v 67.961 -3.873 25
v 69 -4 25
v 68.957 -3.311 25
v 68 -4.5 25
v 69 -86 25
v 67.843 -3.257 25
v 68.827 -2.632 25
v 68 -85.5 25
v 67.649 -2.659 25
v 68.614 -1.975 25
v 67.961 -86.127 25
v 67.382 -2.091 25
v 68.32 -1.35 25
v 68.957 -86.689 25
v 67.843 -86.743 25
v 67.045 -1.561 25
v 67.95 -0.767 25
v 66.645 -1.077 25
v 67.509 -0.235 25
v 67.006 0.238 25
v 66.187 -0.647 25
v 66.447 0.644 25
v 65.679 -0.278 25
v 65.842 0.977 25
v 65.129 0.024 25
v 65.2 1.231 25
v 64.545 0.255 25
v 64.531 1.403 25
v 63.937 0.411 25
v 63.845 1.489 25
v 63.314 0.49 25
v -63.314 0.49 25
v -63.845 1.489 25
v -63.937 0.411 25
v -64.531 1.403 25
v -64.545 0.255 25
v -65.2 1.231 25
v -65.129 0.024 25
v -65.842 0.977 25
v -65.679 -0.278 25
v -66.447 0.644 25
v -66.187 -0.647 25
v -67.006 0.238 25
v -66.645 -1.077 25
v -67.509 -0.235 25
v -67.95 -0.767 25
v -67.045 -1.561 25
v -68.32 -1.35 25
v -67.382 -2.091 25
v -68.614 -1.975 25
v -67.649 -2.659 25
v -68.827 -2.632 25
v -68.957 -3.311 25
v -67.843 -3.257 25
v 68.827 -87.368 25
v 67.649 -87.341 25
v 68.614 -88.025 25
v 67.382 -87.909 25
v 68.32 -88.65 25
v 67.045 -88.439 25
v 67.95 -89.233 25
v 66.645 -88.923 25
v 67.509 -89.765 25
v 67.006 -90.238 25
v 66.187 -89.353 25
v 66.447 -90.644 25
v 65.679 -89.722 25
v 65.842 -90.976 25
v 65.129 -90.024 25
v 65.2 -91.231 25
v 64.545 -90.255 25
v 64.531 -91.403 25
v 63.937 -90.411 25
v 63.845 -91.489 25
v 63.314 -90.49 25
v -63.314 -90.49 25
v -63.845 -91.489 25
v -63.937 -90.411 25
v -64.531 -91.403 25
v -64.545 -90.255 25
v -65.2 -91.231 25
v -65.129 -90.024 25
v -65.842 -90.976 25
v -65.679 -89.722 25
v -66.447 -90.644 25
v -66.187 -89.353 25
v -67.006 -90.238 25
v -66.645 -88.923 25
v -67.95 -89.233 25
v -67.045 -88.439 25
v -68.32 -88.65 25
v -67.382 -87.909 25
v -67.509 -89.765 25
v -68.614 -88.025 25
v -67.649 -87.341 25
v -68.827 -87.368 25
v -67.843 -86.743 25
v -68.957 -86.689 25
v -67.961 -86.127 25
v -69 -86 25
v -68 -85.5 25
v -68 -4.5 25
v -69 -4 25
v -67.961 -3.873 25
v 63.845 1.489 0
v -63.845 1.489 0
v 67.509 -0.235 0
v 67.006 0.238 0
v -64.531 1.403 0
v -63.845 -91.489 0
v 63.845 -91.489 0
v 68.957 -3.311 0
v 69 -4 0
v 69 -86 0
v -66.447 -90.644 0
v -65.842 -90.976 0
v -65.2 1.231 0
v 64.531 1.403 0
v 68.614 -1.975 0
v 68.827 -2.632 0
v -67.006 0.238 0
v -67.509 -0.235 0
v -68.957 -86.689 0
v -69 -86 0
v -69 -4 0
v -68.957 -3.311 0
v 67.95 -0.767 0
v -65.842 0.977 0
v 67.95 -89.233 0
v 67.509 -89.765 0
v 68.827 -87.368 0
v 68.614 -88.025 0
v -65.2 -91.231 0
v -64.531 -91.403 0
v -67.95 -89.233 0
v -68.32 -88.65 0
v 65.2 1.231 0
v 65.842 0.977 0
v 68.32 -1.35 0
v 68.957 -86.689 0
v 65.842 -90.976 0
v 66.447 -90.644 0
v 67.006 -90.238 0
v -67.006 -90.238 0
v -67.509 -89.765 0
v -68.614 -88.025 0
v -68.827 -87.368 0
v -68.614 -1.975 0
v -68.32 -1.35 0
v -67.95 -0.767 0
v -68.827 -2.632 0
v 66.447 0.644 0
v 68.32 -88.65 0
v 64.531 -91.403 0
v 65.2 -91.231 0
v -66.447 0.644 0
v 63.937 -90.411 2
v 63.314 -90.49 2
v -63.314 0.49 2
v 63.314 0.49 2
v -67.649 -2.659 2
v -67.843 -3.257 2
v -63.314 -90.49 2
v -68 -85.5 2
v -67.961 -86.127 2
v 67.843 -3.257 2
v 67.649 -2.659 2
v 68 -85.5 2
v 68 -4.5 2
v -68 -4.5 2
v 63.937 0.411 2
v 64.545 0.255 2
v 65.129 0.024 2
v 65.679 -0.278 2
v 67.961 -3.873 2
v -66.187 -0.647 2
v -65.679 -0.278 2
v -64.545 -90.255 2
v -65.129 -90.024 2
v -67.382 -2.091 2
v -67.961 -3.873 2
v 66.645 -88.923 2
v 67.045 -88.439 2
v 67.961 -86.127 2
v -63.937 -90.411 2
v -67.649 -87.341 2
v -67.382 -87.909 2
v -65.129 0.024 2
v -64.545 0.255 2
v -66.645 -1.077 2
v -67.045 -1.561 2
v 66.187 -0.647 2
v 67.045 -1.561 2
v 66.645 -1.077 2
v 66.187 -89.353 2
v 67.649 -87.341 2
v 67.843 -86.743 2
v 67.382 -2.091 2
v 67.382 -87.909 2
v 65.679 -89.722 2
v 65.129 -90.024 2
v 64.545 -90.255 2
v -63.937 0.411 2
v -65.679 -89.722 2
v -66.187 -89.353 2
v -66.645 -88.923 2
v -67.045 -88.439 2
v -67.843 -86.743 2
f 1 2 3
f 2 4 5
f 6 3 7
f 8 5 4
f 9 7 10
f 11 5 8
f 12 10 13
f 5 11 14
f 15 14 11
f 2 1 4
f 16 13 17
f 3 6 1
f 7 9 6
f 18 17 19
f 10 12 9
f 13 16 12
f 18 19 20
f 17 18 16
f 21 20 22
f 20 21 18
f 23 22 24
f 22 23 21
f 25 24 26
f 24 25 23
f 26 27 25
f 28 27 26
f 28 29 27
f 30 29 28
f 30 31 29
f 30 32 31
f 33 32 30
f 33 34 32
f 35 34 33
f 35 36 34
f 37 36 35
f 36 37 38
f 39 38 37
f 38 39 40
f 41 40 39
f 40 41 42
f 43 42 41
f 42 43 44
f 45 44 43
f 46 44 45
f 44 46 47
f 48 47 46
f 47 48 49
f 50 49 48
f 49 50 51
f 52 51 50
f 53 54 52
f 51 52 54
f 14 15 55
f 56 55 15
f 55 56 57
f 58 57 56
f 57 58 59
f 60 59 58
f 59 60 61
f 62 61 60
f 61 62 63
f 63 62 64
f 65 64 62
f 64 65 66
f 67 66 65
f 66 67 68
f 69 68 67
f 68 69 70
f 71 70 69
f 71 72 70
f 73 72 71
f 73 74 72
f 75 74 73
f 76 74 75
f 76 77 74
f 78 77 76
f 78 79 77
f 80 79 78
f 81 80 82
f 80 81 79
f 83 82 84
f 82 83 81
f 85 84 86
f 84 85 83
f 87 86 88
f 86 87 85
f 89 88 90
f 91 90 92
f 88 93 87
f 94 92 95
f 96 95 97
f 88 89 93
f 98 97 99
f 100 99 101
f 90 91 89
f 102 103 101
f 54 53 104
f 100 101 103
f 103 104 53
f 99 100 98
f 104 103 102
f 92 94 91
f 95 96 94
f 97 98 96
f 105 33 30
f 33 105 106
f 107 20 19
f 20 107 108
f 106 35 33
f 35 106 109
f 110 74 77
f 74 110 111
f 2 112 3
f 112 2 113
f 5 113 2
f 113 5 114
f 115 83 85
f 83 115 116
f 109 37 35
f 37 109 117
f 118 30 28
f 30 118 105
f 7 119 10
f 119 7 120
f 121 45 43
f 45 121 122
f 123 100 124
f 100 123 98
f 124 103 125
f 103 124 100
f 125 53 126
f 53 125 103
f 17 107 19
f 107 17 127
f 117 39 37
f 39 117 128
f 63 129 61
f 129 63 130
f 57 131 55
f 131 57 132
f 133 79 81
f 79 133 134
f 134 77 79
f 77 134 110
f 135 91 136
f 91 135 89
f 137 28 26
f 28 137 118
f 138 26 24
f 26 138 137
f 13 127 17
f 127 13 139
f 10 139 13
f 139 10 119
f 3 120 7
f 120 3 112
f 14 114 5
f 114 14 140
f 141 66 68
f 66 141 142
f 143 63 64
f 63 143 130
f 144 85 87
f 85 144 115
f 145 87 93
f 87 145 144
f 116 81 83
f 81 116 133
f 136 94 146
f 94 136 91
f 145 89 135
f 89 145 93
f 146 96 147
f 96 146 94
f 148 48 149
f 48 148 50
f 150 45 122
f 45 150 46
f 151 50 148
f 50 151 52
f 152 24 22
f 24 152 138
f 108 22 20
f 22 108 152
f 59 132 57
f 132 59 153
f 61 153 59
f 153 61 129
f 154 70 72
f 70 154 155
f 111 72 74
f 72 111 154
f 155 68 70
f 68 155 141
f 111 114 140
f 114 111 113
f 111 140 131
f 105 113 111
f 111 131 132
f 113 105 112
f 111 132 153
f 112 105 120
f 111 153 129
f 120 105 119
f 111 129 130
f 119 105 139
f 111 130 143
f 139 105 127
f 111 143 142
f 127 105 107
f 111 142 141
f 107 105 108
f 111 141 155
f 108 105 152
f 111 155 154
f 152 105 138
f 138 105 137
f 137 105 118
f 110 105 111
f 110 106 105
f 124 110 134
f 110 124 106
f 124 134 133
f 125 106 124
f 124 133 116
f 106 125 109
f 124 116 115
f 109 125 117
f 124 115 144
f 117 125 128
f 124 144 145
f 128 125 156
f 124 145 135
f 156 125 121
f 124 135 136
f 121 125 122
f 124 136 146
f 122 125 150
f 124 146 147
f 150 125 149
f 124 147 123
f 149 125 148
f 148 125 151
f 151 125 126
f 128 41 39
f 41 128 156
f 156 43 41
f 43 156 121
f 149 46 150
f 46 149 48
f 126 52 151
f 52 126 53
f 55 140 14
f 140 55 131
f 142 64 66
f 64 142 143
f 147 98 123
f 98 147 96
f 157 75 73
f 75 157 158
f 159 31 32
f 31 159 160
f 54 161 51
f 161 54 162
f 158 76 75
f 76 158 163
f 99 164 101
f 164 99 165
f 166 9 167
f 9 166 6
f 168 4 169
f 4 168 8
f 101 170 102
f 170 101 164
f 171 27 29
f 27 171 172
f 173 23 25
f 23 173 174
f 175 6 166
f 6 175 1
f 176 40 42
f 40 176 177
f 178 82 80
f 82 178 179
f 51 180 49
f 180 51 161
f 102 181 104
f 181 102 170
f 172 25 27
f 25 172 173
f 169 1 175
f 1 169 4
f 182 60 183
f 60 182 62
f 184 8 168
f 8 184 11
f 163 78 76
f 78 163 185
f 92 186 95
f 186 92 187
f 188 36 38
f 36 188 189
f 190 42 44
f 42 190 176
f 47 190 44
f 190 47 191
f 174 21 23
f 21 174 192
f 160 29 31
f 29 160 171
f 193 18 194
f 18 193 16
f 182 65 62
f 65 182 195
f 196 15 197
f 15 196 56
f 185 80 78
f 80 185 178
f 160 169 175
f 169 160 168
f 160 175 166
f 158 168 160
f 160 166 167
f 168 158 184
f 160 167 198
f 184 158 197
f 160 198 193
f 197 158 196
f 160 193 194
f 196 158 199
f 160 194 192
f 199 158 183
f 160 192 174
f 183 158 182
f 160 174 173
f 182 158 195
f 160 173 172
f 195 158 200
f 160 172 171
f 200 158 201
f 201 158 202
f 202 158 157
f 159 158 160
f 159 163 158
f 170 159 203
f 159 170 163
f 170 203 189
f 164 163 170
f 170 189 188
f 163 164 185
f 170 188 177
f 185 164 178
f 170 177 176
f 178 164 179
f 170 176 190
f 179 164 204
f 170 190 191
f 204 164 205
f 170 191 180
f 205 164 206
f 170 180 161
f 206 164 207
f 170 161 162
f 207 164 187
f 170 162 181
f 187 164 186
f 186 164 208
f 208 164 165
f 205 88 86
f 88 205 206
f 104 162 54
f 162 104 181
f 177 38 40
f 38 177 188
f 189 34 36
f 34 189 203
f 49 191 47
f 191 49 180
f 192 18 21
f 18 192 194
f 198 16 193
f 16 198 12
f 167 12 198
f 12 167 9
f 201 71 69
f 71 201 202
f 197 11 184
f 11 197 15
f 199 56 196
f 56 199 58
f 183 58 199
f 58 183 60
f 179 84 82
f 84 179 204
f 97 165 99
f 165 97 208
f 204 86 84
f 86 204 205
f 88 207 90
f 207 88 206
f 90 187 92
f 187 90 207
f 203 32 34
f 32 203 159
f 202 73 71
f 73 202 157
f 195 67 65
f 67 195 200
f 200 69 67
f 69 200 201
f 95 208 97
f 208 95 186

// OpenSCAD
$fn = 50;


difference() {
	union() {
		translate(v = [0, -45.0000000000, 0]) {
			hull() {
				translate(v = [-63.5000000000, 41.0000000000, 0]) {
					cylinder(h = 25, r = 5.5000000000);
				}
				translate(v = [63.5000000000, 41.0000000000, 0]) {
					cylinder(h = 25, r = 5.5000000000);
				}
				translate(v = [-63.5000000000, -41.0000000000, 0]) {
					cylinder(h = 25, r = 5.5000000000);
				}
				translate(v = [63.5000000000, -41.0000000000, 0]) {
					cylinder(h = 25, r = 5.5000000000);
				}
			}
		}
	}
	union() {
		translate(v = [0, -45.0000000000, 2]) {
			hull() {
				translate(v = [-63.0000000000, 40.5000000000, 0]) {
					cylinder(h = 50, r = 5);
				}
				translate(v = [63.0000000000, 40.5000000000, 0]) {
					cylinder(h = 50, r = 5);
				}
				translate(v = [-63.0000000000, -40.5000000000, 0]) {
					cylinder(h = 50, r = 5);
				}
				translate(v = [63.0000000000, -40.5000000000, 0]) {
					cylinder(h = 50, r = 5);
				}
			}
		}
	}
}
